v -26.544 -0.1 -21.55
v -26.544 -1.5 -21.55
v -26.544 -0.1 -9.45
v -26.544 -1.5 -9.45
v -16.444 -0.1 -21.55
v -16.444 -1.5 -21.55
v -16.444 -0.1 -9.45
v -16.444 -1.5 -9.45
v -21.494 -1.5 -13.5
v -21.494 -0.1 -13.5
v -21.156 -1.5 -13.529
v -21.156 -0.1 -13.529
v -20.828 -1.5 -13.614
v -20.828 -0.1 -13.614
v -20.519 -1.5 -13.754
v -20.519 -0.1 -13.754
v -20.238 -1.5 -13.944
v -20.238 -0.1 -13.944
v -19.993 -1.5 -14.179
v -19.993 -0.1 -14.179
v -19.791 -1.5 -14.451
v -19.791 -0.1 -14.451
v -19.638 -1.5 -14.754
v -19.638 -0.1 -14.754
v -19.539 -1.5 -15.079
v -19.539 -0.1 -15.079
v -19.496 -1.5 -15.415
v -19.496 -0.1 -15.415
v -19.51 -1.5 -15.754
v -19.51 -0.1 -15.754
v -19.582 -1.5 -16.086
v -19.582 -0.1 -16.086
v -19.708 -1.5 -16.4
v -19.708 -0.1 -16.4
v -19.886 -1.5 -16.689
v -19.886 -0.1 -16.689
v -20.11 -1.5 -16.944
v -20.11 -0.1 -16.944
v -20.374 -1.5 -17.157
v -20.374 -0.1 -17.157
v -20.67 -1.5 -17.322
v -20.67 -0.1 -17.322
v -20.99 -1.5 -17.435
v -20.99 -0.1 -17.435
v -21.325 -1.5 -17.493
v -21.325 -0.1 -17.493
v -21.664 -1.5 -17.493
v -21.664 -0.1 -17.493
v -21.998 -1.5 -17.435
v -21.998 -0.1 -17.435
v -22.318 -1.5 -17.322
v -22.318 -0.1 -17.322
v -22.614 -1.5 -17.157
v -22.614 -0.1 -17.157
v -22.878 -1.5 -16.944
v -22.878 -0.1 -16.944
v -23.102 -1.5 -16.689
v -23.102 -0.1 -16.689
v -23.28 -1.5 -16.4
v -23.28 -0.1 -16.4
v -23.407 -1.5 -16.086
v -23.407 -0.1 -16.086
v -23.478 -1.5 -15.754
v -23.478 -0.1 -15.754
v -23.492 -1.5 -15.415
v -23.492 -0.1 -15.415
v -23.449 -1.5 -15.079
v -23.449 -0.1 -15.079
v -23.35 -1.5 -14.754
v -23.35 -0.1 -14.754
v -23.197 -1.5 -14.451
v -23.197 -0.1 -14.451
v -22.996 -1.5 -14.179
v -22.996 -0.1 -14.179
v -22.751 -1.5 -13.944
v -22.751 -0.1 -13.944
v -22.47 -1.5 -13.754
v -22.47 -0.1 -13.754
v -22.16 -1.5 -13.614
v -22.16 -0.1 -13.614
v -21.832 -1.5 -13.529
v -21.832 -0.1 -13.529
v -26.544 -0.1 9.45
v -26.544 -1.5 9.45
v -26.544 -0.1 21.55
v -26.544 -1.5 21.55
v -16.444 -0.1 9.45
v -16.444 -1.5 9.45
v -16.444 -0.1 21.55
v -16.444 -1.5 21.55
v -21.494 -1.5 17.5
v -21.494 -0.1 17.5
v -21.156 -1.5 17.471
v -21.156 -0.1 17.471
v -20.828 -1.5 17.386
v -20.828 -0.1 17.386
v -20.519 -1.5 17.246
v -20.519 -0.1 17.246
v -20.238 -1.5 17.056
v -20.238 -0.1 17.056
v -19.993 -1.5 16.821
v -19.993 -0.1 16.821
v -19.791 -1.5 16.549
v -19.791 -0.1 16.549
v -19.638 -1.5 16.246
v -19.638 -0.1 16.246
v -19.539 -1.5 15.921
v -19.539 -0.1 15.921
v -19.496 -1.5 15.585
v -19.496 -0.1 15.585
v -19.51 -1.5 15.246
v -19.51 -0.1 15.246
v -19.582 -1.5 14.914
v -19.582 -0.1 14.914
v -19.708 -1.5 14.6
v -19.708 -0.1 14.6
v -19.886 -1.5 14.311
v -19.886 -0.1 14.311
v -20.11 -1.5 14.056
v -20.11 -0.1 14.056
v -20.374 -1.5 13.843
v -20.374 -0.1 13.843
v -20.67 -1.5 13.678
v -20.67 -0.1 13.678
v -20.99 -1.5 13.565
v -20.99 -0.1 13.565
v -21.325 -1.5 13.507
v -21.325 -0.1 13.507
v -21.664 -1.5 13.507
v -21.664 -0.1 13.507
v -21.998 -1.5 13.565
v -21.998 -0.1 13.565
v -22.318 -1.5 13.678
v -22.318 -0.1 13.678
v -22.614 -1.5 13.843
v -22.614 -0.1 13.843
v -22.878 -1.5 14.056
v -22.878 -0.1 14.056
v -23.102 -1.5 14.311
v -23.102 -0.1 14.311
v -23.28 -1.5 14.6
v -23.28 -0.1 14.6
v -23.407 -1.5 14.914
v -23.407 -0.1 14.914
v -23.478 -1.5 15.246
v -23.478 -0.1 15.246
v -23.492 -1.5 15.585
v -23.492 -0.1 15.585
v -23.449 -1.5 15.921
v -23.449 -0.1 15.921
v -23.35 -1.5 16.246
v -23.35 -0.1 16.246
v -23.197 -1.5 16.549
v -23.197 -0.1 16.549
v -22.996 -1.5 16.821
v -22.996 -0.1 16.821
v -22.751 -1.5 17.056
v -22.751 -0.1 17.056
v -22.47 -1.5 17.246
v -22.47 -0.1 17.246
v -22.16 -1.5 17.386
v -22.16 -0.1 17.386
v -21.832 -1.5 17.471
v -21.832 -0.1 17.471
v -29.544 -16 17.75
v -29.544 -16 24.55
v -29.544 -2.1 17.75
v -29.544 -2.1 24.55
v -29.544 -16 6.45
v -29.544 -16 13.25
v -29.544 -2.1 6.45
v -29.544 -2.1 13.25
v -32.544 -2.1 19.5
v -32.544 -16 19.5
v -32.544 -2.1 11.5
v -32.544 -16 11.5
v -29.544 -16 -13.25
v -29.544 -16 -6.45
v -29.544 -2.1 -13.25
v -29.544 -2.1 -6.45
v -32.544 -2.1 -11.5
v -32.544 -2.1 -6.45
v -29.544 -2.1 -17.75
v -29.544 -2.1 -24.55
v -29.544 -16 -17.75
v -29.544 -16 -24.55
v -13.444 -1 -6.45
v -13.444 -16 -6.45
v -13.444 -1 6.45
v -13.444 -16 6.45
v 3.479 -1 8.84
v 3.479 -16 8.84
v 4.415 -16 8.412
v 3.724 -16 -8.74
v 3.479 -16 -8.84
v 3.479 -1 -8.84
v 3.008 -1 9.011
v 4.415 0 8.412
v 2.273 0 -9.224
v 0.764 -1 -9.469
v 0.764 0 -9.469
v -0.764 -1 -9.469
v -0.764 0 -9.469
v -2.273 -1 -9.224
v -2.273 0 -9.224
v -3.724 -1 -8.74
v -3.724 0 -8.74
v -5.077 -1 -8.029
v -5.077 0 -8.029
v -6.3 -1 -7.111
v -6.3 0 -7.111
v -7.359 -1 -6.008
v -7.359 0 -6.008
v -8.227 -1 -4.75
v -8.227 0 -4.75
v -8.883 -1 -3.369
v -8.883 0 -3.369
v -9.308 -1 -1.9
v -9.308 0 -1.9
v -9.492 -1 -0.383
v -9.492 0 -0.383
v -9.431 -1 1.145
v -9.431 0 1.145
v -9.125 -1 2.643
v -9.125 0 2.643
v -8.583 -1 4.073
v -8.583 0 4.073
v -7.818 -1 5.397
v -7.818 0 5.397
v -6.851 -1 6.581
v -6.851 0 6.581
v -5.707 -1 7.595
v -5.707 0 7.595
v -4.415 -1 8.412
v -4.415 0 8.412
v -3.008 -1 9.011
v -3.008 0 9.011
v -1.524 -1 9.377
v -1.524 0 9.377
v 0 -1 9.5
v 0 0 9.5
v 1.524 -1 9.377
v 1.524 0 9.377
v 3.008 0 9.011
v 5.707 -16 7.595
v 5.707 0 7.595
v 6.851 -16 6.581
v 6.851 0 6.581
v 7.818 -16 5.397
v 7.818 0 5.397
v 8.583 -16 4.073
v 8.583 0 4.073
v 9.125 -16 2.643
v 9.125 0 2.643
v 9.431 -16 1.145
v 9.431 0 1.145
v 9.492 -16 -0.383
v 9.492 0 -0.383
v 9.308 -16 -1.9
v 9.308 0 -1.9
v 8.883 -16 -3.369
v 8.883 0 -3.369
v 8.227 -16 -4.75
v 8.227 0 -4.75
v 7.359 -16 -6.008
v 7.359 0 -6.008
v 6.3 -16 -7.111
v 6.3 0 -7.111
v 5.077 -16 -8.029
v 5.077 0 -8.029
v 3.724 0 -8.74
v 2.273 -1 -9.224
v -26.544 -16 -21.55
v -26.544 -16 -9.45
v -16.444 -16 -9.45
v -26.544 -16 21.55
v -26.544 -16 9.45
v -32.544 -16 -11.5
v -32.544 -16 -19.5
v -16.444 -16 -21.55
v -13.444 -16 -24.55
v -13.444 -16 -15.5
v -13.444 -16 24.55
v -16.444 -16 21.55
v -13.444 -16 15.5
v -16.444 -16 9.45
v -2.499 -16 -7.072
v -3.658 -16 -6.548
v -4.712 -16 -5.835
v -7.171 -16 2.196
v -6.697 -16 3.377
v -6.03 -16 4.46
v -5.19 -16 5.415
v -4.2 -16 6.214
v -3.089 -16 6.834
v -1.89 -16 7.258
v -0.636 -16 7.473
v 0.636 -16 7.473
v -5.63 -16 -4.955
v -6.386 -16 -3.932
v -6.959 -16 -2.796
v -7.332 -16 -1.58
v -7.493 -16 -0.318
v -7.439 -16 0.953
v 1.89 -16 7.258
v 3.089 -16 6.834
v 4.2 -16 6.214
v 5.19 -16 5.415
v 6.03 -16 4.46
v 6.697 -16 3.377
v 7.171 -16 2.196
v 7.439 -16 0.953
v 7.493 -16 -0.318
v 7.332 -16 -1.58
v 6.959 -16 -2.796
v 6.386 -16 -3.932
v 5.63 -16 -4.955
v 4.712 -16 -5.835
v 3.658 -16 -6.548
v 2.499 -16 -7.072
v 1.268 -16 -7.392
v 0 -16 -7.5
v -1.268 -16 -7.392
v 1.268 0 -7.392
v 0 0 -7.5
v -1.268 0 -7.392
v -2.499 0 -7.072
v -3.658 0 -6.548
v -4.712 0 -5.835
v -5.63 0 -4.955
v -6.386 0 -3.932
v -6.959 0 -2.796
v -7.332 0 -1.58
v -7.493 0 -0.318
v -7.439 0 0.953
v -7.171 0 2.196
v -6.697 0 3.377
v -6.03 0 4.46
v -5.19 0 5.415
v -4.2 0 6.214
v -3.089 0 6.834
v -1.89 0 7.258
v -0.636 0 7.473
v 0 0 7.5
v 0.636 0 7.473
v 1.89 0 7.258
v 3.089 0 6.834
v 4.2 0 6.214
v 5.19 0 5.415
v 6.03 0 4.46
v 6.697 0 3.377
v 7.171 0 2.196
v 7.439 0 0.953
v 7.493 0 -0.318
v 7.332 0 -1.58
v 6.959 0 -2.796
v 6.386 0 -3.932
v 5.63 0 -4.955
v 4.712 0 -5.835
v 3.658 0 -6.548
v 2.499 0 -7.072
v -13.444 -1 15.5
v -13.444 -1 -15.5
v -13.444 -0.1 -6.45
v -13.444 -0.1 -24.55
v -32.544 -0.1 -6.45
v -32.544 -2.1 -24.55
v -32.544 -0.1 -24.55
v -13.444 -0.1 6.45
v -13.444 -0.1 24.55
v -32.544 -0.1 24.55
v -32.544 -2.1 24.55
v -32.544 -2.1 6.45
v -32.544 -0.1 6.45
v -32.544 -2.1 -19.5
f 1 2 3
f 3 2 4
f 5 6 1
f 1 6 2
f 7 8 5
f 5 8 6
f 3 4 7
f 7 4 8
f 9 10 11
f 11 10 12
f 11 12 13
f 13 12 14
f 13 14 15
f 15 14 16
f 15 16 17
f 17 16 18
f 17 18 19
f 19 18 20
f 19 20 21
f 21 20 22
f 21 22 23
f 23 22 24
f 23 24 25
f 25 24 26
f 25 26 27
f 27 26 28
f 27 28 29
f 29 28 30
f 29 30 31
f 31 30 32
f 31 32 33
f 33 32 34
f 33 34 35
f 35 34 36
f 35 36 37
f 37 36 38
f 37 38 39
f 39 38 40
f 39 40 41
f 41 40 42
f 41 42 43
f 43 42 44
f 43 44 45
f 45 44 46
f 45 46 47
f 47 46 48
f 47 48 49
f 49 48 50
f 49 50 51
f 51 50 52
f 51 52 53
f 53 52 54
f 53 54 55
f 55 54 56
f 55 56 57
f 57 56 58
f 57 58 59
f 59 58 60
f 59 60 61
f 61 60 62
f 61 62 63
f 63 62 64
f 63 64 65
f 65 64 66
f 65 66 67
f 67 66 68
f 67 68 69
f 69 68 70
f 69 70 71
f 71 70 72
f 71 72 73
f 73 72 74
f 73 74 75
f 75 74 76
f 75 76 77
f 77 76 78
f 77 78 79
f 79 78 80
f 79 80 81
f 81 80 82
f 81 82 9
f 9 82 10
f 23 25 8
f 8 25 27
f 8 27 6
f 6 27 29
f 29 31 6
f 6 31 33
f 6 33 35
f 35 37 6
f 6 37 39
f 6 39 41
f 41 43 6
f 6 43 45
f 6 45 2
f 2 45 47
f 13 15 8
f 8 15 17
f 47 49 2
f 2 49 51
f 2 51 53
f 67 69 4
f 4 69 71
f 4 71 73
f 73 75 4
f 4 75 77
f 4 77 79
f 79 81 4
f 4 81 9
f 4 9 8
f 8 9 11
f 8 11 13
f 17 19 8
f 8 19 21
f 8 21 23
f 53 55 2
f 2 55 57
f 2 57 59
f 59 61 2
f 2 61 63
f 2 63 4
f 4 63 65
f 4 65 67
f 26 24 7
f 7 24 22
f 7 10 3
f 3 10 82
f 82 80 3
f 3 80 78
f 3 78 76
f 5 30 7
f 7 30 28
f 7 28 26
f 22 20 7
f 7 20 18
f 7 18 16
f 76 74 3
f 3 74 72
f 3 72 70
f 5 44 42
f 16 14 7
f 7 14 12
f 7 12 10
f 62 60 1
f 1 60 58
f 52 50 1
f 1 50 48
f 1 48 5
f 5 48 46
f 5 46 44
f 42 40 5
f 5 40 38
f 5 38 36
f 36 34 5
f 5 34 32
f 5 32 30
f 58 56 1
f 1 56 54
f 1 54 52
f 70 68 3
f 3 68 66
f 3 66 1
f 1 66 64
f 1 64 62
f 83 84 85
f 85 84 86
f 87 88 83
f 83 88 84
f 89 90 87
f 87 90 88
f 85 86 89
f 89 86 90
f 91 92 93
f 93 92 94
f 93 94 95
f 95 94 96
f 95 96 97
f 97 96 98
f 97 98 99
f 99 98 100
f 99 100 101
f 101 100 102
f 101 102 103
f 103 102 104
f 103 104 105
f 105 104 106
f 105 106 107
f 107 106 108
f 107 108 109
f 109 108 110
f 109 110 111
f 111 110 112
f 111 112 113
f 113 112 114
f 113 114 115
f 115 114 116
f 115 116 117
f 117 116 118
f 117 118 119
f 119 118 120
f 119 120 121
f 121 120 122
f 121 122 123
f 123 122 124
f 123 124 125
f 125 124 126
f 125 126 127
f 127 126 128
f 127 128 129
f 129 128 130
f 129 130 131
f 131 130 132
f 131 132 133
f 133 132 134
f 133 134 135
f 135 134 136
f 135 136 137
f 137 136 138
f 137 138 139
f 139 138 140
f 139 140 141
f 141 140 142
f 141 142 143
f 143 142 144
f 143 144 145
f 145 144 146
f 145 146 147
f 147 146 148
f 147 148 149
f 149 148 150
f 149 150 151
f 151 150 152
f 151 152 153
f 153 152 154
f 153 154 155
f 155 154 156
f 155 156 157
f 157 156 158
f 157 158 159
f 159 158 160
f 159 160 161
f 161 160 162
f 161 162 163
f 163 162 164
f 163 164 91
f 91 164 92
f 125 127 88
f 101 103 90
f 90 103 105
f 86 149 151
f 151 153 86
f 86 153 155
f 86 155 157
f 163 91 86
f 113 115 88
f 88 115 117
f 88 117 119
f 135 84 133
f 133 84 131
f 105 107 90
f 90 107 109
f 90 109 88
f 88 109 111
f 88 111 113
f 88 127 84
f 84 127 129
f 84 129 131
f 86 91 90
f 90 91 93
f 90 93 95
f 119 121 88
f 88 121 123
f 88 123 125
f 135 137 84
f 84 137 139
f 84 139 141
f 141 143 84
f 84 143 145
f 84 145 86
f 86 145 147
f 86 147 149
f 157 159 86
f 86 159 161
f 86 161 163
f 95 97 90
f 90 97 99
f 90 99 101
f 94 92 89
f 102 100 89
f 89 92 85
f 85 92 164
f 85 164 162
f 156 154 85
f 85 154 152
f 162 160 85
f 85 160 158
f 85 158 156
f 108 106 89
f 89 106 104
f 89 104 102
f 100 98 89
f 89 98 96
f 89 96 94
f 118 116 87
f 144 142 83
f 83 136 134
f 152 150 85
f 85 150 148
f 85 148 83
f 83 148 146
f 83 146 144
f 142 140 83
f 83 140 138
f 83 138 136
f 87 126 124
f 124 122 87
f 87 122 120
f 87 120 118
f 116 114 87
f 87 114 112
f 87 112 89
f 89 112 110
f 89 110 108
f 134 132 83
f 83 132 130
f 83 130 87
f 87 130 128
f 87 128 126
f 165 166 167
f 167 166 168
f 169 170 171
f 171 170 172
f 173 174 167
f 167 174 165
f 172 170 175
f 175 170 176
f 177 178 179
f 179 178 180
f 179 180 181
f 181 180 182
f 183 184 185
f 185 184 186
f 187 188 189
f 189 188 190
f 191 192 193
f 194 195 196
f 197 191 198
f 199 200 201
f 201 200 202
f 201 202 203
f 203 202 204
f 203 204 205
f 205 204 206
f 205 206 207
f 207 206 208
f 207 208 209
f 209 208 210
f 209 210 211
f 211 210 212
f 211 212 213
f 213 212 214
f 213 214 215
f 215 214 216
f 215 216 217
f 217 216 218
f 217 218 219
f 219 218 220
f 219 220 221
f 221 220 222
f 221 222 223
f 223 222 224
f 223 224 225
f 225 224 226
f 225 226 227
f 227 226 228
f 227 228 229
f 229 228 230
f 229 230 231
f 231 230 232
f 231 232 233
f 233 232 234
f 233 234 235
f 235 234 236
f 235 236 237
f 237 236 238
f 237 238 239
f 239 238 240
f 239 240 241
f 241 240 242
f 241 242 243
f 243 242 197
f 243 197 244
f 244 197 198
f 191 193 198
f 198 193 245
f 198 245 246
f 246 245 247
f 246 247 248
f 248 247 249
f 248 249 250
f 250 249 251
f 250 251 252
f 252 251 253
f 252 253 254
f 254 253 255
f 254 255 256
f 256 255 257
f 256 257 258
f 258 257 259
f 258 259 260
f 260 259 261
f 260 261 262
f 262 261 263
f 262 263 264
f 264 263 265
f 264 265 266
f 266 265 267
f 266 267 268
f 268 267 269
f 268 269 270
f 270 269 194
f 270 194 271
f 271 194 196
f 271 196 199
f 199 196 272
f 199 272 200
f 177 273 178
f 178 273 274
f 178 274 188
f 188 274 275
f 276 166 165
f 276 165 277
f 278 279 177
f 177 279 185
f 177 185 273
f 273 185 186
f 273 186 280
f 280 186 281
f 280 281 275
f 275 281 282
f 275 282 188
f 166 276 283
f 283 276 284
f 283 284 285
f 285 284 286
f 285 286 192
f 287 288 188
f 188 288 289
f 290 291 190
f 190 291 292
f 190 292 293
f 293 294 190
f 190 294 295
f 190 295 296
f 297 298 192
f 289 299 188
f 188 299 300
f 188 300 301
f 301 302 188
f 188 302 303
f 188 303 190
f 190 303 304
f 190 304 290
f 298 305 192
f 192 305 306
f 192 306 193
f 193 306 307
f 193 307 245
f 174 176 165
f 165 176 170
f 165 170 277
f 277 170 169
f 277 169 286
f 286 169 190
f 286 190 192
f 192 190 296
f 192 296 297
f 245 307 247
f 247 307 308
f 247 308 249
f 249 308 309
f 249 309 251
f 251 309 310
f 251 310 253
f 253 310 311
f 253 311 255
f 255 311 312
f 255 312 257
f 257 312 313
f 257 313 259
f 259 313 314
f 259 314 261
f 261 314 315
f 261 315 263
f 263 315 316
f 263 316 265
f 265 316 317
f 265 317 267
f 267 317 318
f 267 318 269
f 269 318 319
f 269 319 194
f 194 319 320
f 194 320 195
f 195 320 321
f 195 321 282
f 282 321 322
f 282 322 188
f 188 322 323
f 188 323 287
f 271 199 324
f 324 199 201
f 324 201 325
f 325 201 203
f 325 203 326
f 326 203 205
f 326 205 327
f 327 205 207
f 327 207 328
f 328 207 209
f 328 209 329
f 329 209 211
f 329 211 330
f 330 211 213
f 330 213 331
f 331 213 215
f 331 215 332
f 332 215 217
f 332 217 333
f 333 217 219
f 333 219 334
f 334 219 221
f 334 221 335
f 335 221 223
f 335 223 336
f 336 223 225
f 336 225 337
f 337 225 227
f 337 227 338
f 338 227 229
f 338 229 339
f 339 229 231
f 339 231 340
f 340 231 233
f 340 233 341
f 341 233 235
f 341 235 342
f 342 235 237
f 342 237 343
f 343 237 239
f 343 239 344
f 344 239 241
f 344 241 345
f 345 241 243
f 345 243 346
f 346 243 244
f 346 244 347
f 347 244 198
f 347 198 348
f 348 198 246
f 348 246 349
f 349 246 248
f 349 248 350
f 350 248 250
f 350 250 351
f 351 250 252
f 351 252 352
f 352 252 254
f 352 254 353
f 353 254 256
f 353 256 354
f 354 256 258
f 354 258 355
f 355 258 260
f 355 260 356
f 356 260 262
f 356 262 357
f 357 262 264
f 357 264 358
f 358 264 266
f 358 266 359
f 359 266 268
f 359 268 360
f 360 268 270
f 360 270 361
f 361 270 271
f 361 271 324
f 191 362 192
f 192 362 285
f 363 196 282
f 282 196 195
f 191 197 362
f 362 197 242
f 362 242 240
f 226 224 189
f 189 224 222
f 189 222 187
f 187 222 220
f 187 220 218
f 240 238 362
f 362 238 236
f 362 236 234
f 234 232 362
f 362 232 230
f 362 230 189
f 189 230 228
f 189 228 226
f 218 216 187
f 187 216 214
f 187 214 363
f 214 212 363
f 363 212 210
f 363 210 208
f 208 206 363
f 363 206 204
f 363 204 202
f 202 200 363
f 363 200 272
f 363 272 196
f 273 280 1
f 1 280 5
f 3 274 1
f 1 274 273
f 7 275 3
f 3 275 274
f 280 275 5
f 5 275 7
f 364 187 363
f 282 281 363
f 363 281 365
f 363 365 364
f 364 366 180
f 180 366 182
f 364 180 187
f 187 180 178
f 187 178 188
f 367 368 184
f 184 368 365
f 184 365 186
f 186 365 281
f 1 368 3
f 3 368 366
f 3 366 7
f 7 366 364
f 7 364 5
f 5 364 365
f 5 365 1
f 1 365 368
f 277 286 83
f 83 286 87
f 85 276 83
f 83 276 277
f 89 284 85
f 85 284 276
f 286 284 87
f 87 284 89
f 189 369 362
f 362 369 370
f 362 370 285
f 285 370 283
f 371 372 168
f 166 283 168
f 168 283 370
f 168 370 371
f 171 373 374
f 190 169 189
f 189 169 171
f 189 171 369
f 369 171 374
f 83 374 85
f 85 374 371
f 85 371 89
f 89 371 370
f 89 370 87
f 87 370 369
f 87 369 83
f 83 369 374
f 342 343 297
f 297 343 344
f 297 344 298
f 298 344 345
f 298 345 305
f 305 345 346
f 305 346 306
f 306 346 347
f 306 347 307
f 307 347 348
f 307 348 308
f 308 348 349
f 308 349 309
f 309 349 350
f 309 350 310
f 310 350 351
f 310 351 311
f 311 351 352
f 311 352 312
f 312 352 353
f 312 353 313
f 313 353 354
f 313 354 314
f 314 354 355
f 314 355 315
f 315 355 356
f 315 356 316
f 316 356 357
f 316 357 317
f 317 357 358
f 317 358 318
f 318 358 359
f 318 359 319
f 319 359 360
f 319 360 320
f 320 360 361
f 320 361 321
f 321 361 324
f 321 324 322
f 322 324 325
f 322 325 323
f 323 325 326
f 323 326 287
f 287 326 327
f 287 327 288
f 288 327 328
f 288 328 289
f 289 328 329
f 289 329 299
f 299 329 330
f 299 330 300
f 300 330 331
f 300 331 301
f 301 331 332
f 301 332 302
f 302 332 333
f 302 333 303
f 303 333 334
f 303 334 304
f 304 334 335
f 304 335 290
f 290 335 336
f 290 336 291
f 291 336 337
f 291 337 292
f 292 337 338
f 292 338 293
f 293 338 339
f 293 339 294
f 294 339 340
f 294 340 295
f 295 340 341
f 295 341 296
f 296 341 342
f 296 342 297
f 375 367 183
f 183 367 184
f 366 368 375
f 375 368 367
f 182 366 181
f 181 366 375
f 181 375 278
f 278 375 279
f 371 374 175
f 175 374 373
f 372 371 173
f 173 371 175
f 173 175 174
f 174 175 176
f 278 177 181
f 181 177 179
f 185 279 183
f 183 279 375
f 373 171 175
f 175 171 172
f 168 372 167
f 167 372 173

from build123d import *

# Parameters (mm, degrees)
SKETCH_1_R          = 2.5
EXTRUDE_1_DEPTH     = 5
SKETCH_2_R          = 9.5
EXTRUDE_2_DEPTH     = 16
CUT_EXTRUDE_1_DEPTH = 13.5
SKETCH_4_R          = 3.025
CUT_EXTRUDE_2_DEPTH = 6.5
SKETCH_5_R          = 3.525
CUT_EXTRUDE_3_DEPTH = 4.5
SKETCH_6_W          = 16.1
SKETCH_6_H          = 18.1
SKETCH_6_W_2        = 10.1
SKETCH_6_H_2        = 12.1
EXTRUDE_3_DEPTH     = 16
EXTRUDE_3_2_DEPTH   = 16
SKETCH_7_W          = 10.1
SKETCH_7_H          = 12.1
SKETCH_7_R          = 2
EXTRUDE_4_DEPTH     = 1.5
EXTRUDE_4_2_DEPTH   = 1.5
SKETCH_8_W          = 16.1
SKETCH_8_H          = 18.1
CUT_EXTRUDE_4_DEPTH = 0.1
EXTRUDE_START       = -15
EXTRUDE_5_DEPTH     = 15
SKETCH_10_R         = 7.5
CUT_EXTRUDE_6_DEPTH = 44.778549344
EXTRUDE_6_DEPTH     = 15.9
EXTRUDE_6_2_DEPTH   = 15.9
SKETCH_12_W         = 18.1
SKETCH_12_H         = 2
EXTRUDE_7_DEPTH     = 3


with BuildPart() as part:
    # Эскиз1 → Бобышка-Вытянуть1 (new body)
    with BuildSketch(Plane(origin=(0, 0, 0), x_dir=(1, 0, 0), z_dir=(0, 1, 0))):
        with Locations(Location((0, 0, 0), (0, 0, 270))):
            Circle(SKETCH_1_R)
    extrude(amount=EXTRUDE_1_DEPTH)

    # Эскиз2 → Бобышка-Вытянуть2 (add)
    with BuildSketch(Plane(origin=(0, 0, 0), x_dir=(1, 0, 0), z_dir=(0, 1, 0))):
        with Locations(Location((0, 0, 0), (0, 0, 270))):
            Circle(SKETCH_2_R)
    extrude(amount=-EXTRUDE_2_DEPTH)

    # Эскиз3 → Вырез-Вытянуть1 (cut)
    with BuildSketch(Plane.XZ.offset(16)):
        with BuildLine():
            Line((2.626904071, 1.5), (-2.626904071, 1.5))
            ThreePointArc((-2.626904071, 1.5), (-0.775963976, -2.923782637), (3.025, 0))
            ThreePointArc((3.025, 0), (2.923782637, 0.775963976), (2.626904071, 1.5))
        make_face()
    extrude(amount=-CUT_EXTRUDE_1_DEPTH, mode=Mode.SUBTRACT)

    # Эскиз4 → Вырез-Вытянуть2 (cut)
    with BuildSketch(Plane.XZ.offset(16)):
        with Locations(Location((0, 0, 0), (0, 0, 270))):
            Circle(SKETCH_4_R)
    extrude(amount=-CUT_EXTRUDE_2_DEPTH, mode=Mode.SUBTRACT)

    # Эскиз5 → Вырез-Вытянуть3 (cut)
    with BuildSketch(Plane.XZ.offset(16)):
        with Locations(Location((0, 0, 0), (0, 0, 270))):
            Circle(SKETCH_5_R)
    extrude(amount=-CUT_EXTRUDE_3_DEPTH, mode=Mode.SUBTRACT)



with BuildPart() as body_2:
    # Эскиз6 → Бобышка-Вытянуть3 (new body)
    with BuildSketch(Plane.XZ.offset(16)):
        with Locations((-21.49418526, -15.5)):
            Rectangle(SKETCH_6_W, SKETCH_6_H)
        with Locations((-21.49418526, -15.5)):
            Rectangle(SKETCH_6_W_2, SKETCH_6_H_2, mode=Mode.SUBTRACT)
    extrude(amount=-EXTRUDE_3_DEPTH)


with BuildPart() as body_3:
    # Эскиз6 → Extrude 3 2 (new body)
    with BuildSketch(Plane.XZ.offset(16)):
        with Locations((-21.49418526, 15.5)):
            Rectangle(SKETCH_6_W, SKETCH_6_H)
        with Locations((-21.49418526, 15.5)):
            Rectangle(SKETCH_6_W_2, SKETCH_6_H_2, mode=Mode.SUBTRACT)
    extrude(amount=-EXTRUDE_3_2_DEPTH)


with BuildPart() as body_4:
    # Эскиз7 → Бобышка-Вытянуть4 (new body)
    with BuildSketch(Plane(origin=(0, 0, 0), x_dir=(1, 0, 0), z_dir=(0, 1, 0))):
        with Locations((-21.49418526, 15.5)):
            Rectangle(SKETCH_7_W, SKETCH_7_H)
        with Locations(Location((-21.49418526, 15.5, 0), (0, 0, 270))):
            Circle(SKETCH_7_R, mode=Mode.SUBTRACT)
    extrude(amount=-EXTRUDE_4_DEPTH)


with BuildPart() as body_5:
    # Эскиз7 → Extrude 4 2 (new body)
    with BuildSketch(Plane(origin=(0, 0, 0), x_dir=(1, 0, 0), z_dir=(0, 1, 0))):
        with Locations((-21.49418526, -15.5)):
            Rectangle(SKETCH_7_W, SKETCH_7_H)
        with Locations(Location((-21.49418526, -15.5, 0), (0, 0, 270))):
            Circle(SKETCH_7_R, mode=Mode.SUBTRACT)
    extrude(amount=-EXTRUDE_4_2_DEPTH)


with BuildPart() as cut_extrude_4_tool:
    # Эскиз8 → Вырез-Вытянуть4 (new body)
    with BuildSketch(Plane(origin=(0, 0, 0), x_dir=(1, 0, 0), z_dir=(0, 1, 0))):
        with Locations((-21.49418526, 15.5)):
            Rectangle(SKETCH_8_W, SKETCH_8_H)
        with Locations((-21.49418526, -15.5)):
            Rectangle(SKETCH_8_W, SKETCH_8_H)
    extrude(amount=-CUT_EXTRUDE_4_DEPTH)


with BuildPart() as body_2_1:
    add(body_2.part)

    # Вырез-Вытянуть4: cut by cut_extrude_4_tool
    add(cut_extrude_4_tool.part, mode=Mode.SUBTRACT)


with BuildPart() as body_3_1:
    add(body_3.part)

    # Вырез-Вытянуть4: cut by cut_extrude_4_tool
    add(cut_extrude_4_tool.part, mode=Mode.SUBTRACT)


with BuildPart() as body_4_1:
    add(body_4.part)

    # Вырез-Вытянуть4: cut by cut_extrude_4_tool
    add(cut_extrude_4_tool.part, mode=Mode.SUBTRACT)


with BuildPart() as body_5_1:
    add(body_5.part)

    # Вырез-Вытянуть4: cut by cut_extrude_4_tool
    add(cut_extrude_4_tool.part, mode=Mode.SUBTRACT)


with BuildPart() as part_1:
    add(part.part)

    add(body_2_1.part)  # Бобышка-Вытянуть5 merges body 2

    add(body_3_1.part)  # Бобышка-Вытянуть5 merges body 3
    # Эскиз9 → Бобышка-Вытянуть5 (add)
    with BuildSketch(Plane.XZ.offset(16).offset(EXTRUDE_START)):
        with BuildLine():
            Line((-13.44418526, 15.5), (3.478924286, 8.840084039))
            ThreePointArc((3.478924286, 8.840084039), (-9.5, 0), (3.478924286, -8.840084039))
            Line((3.478924286, -8.840084039), (-13.44418526, -15.5))
            Line((-13.44418526, -15.5), (-13.44418526, 15.5))
        make_face()
    extrude(amount=EXTRUDE_5_DEPTH)

    # Эскиз10 → Вырез-Вытянуть6 (cut, through all)
    with BuildSketch(Plane.XZ.offset(16)):
        with Locations(Location((0, 0, 0), (0, 0, 270))):
            Circle(SKETCH_10_R)
    extrude(amount=-CUT_EXTRUDE_6_DEPTH, mode=Mode.SUBTRACT)



with BuildPart() as body_4_2:
    # Эскиз11 → Бобышка-Вытянуть6 (new body)
    with BuildSketch(Plane.XZ.offset(16)):
        Polygon((-29.54418526, 17.75), (-32.54418526, 19.5), (-32.54418526, 11.5), (-29.54418526, 13.25), align=None)
    extrude(amount=-EXTRUDE_6_DEPTH)


with BuildPart() as body_5_2:
    # Эскиз11 → Extrude 6 2 (new body)
    with BuildSketch(Plane.XZ.offset(16)):
        Polygon((-29.54418526, -13.25), (-32.54418526, -11.5), (-32.54418526, -19.5), (-29.54418526, -17.75), align=None)
    extrude(amount=-EXTRUDE_6_2_DEPTH)


with BuildPart() as part_2:
    add(part_1.part)

    add(body_4_2.part)  # Бобышка-Вытянуть7 merges body 4 2

    add(body_5_2.part)  # Бобышка-Вытянуть7 merges body 5 2
    # Эскиз12 → Бобышка-Вытянуть7 (add)
    with BuildSketch(Plane.ZY.offset(29.54418526)):
        with Locations((-15.5, -1.1)):
            Rectangle(SKETCH_12_W, SKETCH_12_H)
        with Locations((15.5, -1.1)):
            Rectangle(SKETCH_12_W, SKETCH_12_H)
    extrude(amount=EXTRUDE_7_DEPTH)


solid = Compound([body_4_1.part, body_5_1.part, part_2.part])
